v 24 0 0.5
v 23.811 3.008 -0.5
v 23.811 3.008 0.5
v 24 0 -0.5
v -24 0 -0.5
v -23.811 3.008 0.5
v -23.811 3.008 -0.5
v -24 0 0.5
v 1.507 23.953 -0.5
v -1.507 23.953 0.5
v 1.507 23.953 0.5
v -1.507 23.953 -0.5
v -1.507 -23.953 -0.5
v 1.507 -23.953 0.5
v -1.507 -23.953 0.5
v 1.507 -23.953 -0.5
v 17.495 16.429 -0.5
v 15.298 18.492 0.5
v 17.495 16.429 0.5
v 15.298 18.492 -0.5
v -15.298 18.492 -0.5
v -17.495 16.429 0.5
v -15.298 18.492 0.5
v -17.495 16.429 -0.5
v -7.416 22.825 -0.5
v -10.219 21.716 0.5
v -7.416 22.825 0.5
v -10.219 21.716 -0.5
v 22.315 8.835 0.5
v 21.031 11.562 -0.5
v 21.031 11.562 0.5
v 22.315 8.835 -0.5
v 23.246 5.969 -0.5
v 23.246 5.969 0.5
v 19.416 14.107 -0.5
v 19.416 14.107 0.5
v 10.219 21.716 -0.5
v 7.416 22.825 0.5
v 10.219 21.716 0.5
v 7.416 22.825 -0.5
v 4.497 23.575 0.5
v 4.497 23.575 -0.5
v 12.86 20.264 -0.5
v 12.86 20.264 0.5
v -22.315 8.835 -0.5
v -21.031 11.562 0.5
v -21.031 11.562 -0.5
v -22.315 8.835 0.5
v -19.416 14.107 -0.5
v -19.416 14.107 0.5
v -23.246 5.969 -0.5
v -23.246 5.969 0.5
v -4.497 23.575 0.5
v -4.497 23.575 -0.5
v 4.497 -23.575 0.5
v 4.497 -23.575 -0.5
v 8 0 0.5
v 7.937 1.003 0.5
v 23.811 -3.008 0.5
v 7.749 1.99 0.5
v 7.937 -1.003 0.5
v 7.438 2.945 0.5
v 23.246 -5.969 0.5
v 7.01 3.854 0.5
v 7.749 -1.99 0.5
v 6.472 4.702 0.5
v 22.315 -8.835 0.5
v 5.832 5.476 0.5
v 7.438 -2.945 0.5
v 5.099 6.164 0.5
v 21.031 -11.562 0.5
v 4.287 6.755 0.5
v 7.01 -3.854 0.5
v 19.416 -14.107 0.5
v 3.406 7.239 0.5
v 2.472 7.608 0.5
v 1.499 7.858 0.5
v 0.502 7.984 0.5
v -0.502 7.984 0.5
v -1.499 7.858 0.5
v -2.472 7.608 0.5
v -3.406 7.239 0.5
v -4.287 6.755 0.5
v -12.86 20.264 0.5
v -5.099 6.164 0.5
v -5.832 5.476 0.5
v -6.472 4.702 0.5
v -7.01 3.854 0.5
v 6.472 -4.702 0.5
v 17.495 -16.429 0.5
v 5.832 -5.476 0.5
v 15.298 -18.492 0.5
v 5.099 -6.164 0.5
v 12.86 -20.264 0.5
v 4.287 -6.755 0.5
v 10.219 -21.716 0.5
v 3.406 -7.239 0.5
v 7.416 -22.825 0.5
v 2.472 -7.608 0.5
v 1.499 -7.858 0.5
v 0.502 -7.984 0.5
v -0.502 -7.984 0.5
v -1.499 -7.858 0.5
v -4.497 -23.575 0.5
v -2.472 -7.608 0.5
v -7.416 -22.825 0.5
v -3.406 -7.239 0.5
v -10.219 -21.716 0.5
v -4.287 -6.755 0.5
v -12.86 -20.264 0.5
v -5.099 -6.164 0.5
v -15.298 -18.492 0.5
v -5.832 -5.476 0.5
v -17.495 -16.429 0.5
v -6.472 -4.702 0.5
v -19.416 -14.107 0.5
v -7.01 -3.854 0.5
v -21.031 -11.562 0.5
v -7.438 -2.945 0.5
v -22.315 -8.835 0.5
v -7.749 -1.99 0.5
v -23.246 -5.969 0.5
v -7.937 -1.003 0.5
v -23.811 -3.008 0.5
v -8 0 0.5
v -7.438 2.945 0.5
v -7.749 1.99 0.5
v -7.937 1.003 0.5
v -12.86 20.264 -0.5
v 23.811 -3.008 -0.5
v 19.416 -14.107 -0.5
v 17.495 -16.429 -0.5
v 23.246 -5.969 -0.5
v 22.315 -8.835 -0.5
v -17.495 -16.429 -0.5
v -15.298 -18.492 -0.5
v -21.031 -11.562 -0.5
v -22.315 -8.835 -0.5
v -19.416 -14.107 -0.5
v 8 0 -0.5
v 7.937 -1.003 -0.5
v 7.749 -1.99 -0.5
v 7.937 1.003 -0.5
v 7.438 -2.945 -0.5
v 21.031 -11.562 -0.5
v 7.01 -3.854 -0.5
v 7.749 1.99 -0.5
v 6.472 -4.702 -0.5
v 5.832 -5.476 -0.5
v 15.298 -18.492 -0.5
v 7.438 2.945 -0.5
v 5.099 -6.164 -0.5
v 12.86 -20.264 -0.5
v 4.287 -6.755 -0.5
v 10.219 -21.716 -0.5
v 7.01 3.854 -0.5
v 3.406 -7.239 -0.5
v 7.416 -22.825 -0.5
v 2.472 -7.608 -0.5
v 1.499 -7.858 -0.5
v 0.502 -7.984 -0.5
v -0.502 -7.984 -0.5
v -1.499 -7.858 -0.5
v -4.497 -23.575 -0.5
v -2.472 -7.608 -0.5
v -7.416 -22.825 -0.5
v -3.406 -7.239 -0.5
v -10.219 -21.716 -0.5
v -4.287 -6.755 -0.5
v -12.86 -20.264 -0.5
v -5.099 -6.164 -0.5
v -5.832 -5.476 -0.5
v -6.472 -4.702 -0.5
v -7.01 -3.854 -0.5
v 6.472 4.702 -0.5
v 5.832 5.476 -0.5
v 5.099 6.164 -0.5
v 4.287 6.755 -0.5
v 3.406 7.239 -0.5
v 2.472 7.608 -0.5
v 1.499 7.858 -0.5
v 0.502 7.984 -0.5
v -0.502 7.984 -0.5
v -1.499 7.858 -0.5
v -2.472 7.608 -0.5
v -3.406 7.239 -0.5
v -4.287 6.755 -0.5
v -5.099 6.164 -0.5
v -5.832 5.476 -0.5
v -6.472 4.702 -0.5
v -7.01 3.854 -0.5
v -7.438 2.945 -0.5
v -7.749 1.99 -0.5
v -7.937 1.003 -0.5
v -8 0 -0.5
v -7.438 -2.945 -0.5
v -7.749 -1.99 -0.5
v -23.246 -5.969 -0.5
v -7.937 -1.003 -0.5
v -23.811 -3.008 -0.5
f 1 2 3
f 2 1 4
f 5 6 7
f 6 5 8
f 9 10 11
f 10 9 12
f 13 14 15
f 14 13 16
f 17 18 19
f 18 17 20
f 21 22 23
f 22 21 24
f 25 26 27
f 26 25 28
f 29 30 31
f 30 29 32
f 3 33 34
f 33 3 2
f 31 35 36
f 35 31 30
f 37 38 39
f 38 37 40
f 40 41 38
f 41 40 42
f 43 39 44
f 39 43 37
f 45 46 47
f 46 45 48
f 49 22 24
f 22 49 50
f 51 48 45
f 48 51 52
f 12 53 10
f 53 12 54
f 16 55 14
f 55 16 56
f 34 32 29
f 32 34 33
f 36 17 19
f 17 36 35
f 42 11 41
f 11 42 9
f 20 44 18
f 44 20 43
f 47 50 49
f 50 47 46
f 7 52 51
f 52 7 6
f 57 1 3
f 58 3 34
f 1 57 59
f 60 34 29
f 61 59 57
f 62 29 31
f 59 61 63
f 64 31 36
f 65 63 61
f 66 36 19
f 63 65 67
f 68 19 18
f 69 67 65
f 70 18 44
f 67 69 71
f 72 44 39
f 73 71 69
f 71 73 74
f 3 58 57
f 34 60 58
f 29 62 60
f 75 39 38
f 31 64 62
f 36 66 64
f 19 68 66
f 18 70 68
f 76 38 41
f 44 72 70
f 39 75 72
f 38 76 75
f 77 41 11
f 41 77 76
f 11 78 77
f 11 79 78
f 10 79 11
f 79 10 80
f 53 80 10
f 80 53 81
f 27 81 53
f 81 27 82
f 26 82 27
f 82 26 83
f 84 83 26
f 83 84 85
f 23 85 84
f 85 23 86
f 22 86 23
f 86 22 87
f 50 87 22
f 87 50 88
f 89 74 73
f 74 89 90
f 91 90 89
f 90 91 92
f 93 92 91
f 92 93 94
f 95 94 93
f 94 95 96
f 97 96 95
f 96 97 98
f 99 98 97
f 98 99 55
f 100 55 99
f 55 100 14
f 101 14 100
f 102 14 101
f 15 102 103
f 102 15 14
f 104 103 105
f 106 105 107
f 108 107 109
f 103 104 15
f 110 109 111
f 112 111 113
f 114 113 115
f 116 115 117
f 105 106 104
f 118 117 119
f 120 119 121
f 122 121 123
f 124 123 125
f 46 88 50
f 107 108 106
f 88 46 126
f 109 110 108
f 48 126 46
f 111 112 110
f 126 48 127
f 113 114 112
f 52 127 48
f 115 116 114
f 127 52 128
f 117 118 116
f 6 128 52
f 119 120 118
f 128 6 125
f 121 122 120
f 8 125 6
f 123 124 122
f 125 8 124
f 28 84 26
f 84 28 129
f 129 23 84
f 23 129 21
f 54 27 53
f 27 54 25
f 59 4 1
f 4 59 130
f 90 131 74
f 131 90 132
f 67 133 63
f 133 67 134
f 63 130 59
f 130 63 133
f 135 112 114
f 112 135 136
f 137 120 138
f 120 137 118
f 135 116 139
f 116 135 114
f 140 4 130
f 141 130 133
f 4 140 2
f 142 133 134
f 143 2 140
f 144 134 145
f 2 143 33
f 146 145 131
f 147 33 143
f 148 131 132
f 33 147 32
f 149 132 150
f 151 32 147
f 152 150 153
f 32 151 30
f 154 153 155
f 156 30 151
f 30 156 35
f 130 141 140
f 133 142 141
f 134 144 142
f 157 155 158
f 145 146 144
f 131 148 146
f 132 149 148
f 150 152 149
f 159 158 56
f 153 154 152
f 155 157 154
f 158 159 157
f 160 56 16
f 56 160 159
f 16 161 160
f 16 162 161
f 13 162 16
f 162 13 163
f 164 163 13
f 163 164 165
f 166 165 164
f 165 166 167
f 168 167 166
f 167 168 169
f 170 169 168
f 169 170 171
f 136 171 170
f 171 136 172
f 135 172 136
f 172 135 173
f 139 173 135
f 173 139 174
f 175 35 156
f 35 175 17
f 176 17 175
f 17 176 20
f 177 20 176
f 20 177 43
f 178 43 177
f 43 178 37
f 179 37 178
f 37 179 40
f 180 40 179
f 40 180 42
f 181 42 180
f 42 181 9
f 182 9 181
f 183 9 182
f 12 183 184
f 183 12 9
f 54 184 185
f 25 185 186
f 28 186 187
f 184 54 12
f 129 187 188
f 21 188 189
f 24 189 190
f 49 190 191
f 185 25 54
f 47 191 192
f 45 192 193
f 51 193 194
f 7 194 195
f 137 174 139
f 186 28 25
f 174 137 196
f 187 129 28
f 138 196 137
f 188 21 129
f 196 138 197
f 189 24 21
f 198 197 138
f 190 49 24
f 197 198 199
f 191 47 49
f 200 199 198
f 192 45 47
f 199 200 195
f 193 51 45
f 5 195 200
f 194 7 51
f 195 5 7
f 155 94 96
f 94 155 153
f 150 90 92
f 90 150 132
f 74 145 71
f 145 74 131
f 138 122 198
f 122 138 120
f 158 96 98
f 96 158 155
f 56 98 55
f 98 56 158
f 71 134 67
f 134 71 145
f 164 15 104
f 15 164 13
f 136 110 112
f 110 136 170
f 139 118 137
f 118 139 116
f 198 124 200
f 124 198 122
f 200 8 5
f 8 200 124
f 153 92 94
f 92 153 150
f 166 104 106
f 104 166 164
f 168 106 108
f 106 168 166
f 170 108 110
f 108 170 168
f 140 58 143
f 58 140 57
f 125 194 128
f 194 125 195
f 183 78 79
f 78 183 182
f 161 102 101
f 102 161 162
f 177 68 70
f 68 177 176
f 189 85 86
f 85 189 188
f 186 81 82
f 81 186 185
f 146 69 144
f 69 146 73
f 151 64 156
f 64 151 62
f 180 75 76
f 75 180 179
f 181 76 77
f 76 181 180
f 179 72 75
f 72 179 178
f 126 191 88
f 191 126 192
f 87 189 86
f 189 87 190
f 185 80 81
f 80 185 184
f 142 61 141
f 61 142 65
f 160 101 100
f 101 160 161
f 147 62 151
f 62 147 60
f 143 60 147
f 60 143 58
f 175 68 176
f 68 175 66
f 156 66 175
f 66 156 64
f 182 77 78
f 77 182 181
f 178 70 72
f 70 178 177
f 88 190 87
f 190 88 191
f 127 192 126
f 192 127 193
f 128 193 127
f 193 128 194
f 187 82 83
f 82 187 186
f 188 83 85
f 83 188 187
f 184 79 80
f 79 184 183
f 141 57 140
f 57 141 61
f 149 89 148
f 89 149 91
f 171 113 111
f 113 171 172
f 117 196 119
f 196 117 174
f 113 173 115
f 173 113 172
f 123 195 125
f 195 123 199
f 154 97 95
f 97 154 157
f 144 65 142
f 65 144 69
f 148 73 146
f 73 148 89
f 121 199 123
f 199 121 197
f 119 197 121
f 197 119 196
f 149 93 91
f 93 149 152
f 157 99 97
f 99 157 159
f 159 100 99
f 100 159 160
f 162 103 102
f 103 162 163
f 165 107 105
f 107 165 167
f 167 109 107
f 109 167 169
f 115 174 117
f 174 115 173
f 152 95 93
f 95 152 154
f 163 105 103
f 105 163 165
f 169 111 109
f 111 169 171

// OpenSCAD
$fn = 50;


difference() {
	union() {
		translate(v = [0, 0, -0.5000000000]) {
			cylinder(h = 1, r = 24.0000000000);
		}
	}
	union() {
		translate(v = [0, 0, -100.0000000000]) {
			cylinder(h = 200, r = 8);
		}
	}
}
